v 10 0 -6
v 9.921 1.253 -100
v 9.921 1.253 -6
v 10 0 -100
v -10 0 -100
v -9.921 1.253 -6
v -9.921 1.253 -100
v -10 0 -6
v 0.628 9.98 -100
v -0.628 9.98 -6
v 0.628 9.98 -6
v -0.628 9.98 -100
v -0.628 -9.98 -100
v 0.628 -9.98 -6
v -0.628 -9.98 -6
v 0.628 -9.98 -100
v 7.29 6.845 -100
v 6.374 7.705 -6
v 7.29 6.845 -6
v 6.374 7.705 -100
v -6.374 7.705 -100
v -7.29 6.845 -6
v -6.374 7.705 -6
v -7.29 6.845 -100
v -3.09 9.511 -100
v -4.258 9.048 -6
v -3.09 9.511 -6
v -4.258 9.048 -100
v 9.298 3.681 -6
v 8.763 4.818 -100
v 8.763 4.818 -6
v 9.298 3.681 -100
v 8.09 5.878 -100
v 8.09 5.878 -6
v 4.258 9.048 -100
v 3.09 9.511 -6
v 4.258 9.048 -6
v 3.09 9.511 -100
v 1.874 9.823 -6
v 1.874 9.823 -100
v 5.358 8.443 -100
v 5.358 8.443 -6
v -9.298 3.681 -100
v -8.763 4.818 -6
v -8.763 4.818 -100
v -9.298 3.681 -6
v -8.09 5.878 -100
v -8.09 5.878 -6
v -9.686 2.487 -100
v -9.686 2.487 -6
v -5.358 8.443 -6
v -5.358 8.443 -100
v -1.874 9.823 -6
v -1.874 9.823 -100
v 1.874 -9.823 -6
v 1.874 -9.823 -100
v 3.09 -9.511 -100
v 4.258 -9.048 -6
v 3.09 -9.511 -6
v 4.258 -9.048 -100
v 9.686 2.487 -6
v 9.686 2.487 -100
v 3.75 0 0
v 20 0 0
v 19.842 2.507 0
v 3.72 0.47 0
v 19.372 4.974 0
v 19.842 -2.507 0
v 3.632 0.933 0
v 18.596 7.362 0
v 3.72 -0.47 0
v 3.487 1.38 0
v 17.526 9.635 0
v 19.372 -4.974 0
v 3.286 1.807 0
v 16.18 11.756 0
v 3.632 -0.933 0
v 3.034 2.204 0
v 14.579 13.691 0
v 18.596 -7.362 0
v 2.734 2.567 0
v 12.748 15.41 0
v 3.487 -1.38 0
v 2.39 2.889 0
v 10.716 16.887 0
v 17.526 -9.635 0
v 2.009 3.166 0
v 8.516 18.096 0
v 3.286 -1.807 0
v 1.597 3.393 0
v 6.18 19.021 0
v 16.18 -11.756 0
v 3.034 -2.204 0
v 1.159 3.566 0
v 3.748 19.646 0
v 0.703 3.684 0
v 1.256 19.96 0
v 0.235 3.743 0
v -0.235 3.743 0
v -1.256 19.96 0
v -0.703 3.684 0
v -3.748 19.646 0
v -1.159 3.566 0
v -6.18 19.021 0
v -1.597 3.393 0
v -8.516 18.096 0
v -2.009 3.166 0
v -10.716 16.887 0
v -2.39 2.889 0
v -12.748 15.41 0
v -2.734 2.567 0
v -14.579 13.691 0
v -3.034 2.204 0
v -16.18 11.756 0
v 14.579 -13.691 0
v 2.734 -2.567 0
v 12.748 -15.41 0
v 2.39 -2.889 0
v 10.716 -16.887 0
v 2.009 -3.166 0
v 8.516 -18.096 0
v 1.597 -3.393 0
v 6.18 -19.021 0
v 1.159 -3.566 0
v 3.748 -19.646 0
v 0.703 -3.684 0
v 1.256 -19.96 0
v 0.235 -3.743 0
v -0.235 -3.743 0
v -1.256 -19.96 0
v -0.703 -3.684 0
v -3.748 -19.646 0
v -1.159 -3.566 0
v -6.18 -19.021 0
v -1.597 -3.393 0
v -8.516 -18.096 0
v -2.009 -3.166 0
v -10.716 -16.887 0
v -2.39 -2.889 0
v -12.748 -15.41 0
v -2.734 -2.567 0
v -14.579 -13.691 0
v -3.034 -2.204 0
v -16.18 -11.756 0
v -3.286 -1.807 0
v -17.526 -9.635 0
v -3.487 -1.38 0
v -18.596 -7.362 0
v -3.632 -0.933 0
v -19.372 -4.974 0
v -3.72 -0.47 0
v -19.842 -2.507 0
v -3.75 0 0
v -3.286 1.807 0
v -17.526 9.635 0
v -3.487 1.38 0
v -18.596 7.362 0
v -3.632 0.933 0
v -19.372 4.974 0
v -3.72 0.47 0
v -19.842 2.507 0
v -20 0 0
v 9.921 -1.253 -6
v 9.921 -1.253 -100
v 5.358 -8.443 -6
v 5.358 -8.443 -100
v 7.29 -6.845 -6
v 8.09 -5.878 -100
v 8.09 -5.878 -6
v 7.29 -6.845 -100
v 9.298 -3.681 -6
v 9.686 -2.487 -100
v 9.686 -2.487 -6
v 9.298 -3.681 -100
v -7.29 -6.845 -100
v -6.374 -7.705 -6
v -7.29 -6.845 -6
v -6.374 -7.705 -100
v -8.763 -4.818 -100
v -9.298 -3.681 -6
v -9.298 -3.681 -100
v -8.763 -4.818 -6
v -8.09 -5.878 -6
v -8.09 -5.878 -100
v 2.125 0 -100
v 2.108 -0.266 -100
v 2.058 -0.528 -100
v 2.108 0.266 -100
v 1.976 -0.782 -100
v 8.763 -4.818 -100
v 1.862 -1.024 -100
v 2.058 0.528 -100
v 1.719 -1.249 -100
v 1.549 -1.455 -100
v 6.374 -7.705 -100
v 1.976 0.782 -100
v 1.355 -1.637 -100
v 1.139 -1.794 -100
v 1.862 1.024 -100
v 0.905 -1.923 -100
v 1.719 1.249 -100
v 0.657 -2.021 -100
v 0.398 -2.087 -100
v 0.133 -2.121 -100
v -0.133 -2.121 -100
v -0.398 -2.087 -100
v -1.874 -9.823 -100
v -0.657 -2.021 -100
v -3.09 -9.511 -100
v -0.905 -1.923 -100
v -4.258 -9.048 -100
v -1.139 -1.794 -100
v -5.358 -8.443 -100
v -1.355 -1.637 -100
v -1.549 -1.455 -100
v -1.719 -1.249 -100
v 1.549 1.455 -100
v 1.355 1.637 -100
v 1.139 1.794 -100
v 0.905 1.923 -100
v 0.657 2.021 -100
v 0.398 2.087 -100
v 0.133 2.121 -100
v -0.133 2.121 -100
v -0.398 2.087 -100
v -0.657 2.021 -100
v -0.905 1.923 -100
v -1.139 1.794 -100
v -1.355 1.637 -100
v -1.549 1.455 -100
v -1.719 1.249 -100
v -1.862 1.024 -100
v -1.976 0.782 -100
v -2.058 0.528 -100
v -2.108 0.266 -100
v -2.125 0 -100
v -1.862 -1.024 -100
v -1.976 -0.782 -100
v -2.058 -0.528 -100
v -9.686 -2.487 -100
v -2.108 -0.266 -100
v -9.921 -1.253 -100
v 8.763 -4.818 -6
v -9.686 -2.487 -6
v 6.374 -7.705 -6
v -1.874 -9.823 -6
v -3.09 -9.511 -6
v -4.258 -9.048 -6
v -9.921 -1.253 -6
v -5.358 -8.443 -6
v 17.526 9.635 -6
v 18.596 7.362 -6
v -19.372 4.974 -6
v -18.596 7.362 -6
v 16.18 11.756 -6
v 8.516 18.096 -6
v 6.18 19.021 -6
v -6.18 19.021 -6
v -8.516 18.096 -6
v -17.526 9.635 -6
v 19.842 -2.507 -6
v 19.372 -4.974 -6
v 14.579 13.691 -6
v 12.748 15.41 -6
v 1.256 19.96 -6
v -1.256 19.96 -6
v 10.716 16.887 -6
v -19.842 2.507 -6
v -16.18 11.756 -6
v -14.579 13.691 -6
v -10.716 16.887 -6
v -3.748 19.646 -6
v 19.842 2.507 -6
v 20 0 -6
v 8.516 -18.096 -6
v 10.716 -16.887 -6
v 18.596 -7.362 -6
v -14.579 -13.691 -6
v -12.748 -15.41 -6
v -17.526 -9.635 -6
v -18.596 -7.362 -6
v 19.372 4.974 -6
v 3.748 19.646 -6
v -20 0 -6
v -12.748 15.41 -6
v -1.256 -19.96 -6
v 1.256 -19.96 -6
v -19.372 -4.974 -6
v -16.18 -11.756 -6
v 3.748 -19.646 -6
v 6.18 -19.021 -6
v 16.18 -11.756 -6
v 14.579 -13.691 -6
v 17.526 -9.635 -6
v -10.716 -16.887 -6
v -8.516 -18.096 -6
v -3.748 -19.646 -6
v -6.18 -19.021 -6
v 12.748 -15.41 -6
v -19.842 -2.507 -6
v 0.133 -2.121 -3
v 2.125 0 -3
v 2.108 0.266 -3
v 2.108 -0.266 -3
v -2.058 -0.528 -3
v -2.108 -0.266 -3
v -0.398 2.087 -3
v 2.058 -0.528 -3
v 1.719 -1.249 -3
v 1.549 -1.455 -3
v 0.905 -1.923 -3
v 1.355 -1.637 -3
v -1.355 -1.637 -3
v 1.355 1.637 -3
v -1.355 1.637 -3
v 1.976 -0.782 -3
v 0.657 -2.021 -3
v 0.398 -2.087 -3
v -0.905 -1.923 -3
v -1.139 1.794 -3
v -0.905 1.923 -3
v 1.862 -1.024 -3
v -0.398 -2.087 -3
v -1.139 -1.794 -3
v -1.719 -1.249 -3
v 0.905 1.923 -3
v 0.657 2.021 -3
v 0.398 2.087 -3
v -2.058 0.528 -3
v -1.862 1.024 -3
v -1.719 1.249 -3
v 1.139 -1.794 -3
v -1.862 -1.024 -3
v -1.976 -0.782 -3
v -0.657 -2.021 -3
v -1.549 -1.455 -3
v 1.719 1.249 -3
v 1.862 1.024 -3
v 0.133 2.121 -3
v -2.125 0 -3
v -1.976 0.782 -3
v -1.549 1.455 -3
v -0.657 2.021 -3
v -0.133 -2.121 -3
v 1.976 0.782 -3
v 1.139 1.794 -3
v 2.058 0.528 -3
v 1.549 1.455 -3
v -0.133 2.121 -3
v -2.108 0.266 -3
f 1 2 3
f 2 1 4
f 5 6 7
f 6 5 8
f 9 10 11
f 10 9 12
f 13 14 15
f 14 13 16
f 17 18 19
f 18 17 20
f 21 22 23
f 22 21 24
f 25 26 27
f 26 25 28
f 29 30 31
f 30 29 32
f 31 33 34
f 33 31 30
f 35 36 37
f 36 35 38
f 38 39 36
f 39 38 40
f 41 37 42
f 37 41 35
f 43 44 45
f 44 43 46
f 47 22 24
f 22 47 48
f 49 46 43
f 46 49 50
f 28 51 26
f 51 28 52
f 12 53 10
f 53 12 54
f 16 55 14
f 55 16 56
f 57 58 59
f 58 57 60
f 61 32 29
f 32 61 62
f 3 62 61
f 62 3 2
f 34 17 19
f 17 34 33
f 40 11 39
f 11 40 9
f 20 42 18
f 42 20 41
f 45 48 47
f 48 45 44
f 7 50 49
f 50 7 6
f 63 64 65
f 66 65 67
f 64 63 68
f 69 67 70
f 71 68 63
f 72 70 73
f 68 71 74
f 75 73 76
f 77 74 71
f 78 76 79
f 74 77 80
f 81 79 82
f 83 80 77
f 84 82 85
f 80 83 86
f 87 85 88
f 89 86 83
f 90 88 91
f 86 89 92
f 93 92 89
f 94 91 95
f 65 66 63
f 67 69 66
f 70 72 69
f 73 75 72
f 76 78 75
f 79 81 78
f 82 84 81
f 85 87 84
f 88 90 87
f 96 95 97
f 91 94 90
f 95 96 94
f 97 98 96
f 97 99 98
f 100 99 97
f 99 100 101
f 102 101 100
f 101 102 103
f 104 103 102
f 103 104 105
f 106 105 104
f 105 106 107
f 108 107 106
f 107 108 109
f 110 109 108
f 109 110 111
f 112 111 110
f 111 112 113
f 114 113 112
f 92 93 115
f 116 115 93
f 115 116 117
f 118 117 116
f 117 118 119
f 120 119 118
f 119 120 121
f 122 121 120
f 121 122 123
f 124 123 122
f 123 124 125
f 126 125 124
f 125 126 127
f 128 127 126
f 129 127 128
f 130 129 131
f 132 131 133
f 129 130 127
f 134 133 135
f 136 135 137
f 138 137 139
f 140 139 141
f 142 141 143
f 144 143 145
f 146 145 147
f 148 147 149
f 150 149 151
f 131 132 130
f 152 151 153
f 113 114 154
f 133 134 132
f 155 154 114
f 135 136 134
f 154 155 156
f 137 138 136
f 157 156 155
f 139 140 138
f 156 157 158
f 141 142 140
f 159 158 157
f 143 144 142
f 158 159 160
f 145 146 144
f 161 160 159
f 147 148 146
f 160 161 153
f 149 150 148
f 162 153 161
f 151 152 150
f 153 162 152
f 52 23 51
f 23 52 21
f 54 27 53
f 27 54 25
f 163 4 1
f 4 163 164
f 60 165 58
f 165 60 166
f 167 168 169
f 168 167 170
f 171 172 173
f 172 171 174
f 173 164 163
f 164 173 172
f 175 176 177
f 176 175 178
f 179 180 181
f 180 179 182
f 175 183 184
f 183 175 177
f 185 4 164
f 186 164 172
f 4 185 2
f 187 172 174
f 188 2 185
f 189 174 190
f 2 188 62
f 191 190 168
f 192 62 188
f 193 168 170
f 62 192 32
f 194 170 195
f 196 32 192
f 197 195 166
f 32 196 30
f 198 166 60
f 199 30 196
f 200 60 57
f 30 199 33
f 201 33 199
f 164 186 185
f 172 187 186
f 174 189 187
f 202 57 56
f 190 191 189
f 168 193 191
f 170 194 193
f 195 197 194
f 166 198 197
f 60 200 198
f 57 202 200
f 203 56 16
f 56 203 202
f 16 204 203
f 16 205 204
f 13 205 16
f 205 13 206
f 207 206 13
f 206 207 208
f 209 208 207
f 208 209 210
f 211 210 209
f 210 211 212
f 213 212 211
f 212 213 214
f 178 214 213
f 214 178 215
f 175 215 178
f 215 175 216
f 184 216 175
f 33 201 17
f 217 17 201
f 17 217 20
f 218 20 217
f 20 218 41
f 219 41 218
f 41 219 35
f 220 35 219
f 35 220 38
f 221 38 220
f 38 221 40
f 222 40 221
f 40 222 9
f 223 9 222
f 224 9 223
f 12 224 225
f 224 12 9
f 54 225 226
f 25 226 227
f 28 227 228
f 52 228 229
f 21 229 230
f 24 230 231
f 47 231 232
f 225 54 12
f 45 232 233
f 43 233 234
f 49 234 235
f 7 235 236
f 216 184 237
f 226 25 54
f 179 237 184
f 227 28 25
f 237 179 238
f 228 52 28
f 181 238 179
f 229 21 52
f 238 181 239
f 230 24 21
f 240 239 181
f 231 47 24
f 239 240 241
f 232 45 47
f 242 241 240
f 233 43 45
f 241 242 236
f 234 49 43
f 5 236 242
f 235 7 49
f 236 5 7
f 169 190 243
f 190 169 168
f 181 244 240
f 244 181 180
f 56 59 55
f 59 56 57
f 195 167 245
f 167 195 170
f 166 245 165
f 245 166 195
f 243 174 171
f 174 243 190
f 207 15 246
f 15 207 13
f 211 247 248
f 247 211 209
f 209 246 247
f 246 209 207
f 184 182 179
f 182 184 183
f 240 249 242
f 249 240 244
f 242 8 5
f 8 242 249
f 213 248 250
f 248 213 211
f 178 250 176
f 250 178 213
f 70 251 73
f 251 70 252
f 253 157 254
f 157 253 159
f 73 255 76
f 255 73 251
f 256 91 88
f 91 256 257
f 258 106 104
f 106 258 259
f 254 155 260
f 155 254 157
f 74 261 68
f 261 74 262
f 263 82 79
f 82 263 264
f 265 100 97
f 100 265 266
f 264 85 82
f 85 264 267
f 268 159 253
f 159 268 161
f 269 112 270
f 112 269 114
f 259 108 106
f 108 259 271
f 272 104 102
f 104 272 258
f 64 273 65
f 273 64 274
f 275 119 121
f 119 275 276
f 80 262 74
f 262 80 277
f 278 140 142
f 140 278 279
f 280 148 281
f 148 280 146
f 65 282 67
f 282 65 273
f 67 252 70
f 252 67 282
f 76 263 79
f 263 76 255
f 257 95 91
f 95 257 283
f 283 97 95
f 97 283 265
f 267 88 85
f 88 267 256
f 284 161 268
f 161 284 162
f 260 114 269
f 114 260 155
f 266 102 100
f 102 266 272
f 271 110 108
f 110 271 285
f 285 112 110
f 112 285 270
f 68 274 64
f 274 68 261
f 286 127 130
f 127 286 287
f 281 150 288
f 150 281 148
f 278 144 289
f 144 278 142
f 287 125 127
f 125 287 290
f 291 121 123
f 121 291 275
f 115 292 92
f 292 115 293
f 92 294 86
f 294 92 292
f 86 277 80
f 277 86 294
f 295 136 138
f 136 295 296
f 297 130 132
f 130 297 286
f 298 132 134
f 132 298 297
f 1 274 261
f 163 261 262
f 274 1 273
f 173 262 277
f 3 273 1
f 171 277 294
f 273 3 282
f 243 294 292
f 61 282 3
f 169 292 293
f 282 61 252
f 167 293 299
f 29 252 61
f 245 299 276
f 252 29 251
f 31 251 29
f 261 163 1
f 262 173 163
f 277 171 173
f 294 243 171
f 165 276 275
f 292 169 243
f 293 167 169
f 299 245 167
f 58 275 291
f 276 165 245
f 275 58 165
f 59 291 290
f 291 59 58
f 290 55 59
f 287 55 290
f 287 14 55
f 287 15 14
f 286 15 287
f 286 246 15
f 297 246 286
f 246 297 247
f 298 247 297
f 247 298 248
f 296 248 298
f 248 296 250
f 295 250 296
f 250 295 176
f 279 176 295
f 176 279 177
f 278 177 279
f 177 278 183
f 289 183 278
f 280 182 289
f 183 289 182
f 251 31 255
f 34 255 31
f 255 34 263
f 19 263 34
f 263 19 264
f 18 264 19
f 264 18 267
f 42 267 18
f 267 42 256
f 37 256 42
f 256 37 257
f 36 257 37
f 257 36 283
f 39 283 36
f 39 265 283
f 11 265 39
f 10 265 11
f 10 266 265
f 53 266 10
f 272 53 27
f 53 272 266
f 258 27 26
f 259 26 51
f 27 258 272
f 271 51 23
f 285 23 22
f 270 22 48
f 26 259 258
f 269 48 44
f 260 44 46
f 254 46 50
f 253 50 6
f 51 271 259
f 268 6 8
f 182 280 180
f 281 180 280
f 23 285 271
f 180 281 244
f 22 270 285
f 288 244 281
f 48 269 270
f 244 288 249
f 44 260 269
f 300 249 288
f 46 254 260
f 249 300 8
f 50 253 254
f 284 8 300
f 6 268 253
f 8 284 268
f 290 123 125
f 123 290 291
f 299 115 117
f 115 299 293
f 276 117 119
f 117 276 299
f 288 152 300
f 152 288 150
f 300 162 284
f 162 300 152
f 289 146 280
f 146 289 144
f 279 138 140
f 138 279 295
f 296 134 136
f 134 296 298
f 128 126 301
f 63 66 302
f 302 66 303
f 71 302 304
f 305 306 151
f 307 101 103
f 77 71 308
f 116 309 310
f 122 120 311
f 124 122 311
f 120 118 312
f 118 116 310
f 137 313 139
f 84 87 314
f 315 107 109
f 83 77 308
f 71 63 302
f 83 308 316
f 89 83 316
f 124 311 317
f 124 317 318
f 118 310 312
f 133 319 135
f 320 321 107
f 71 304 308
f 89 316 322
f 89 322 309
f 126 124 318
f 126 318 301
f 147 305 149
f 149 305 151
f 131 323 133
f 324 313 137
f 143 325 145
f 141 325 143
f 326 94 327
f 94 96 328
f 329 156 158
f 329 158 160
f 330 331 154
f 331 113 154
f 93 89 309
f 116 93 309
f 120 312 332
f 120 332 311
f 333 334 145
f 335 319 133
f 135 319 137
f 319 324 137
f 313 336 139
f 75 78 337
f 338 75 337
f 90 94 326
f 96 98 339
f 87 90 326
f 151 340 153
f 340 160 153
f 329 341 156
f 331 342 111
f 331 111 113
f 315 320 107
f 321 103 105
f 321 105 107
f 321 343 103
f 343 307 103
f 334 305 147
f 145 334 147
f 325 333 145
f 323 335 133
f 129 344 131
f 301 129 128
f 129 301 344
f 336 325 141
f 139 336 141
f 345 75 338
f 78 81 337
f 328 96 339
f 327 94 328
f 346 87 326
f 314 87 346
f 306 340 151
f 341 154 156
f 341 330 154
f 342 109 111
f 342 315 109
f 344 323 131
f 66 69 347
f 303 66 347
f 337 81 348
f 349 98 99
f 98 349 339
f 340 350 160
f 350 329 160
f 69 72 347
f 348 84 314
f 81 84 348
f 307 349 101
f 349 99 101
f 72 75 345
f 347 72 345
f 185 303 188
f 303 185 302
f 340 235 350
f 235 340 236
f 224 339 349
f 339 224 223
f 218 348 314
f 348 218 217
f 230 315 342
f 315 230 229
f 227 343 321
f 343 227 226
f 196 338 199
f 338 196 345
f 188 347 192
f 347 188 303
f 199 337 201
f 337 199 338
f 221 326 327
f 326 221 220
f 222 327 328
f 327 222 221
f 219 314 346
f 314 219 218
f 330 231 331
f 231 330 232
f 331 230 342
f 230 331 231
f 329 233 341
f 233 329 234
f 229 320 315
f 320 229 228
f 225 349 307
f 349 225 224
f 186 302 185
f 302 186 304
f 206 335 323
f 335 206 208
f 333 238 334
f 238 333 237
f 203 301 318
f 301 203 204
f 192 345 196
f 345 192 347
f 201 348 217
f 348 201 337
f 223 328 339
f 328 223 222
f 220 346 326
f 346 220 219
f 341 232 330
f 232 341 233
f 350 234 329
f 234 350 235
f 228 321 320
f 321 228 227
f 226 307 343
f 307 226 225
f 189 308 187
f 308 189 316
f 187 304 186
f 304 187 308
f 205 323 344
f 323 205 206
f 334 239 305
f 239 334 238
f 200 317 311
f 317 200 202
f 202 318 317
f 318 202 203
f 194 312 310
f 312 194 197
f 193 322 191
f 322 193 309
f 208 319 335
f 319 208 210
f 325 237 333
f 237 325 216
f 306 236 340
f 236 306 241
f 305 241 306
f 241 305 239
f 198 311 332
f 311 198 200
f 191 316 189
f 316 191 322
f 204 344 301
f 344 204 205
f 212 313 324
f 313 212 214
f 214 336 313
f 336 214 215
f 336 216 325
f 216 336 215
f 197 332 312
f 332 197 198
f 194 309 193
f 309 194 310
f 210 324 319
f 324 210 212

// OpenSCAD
$fn = 50;


difference() {
	union() {
		translate(v = [0, 0, -100.0000000000]) {
			cylinder(h = 100, r = 10.0000000000);
		}
		translate(v = [0, 0, -6.0000000000]) {
			cylinder(h = 6, r = 20.0000000000);
		}
	}
	union() {
		translate(v = [0, 0, 0]) {
			rotate(a = [0, 0, 0]) {
				difference() {
					union() {
						#translate(v = [0, 0, -100.0000000000]) {
							cylinder(h = 100, r = 2.0000000000);
						}
						#translate(v = [0, 0, -3]) {
							cylinder(h = 3, r = 10.0000000000, r1 = 2.1250000000, r2 = 3.7500000000);
						}
						#translate(v = [0, 0, -100.0000000000]) {
							cylinder(h = 100, r = 2.1250000000);
						}
						#translate(v = [0, 0, -100.0000000000]) {
							cylinder(h = 100, r = 2.0000000000);
						}
					}
					union();
				}
			}
		}
	}
}
